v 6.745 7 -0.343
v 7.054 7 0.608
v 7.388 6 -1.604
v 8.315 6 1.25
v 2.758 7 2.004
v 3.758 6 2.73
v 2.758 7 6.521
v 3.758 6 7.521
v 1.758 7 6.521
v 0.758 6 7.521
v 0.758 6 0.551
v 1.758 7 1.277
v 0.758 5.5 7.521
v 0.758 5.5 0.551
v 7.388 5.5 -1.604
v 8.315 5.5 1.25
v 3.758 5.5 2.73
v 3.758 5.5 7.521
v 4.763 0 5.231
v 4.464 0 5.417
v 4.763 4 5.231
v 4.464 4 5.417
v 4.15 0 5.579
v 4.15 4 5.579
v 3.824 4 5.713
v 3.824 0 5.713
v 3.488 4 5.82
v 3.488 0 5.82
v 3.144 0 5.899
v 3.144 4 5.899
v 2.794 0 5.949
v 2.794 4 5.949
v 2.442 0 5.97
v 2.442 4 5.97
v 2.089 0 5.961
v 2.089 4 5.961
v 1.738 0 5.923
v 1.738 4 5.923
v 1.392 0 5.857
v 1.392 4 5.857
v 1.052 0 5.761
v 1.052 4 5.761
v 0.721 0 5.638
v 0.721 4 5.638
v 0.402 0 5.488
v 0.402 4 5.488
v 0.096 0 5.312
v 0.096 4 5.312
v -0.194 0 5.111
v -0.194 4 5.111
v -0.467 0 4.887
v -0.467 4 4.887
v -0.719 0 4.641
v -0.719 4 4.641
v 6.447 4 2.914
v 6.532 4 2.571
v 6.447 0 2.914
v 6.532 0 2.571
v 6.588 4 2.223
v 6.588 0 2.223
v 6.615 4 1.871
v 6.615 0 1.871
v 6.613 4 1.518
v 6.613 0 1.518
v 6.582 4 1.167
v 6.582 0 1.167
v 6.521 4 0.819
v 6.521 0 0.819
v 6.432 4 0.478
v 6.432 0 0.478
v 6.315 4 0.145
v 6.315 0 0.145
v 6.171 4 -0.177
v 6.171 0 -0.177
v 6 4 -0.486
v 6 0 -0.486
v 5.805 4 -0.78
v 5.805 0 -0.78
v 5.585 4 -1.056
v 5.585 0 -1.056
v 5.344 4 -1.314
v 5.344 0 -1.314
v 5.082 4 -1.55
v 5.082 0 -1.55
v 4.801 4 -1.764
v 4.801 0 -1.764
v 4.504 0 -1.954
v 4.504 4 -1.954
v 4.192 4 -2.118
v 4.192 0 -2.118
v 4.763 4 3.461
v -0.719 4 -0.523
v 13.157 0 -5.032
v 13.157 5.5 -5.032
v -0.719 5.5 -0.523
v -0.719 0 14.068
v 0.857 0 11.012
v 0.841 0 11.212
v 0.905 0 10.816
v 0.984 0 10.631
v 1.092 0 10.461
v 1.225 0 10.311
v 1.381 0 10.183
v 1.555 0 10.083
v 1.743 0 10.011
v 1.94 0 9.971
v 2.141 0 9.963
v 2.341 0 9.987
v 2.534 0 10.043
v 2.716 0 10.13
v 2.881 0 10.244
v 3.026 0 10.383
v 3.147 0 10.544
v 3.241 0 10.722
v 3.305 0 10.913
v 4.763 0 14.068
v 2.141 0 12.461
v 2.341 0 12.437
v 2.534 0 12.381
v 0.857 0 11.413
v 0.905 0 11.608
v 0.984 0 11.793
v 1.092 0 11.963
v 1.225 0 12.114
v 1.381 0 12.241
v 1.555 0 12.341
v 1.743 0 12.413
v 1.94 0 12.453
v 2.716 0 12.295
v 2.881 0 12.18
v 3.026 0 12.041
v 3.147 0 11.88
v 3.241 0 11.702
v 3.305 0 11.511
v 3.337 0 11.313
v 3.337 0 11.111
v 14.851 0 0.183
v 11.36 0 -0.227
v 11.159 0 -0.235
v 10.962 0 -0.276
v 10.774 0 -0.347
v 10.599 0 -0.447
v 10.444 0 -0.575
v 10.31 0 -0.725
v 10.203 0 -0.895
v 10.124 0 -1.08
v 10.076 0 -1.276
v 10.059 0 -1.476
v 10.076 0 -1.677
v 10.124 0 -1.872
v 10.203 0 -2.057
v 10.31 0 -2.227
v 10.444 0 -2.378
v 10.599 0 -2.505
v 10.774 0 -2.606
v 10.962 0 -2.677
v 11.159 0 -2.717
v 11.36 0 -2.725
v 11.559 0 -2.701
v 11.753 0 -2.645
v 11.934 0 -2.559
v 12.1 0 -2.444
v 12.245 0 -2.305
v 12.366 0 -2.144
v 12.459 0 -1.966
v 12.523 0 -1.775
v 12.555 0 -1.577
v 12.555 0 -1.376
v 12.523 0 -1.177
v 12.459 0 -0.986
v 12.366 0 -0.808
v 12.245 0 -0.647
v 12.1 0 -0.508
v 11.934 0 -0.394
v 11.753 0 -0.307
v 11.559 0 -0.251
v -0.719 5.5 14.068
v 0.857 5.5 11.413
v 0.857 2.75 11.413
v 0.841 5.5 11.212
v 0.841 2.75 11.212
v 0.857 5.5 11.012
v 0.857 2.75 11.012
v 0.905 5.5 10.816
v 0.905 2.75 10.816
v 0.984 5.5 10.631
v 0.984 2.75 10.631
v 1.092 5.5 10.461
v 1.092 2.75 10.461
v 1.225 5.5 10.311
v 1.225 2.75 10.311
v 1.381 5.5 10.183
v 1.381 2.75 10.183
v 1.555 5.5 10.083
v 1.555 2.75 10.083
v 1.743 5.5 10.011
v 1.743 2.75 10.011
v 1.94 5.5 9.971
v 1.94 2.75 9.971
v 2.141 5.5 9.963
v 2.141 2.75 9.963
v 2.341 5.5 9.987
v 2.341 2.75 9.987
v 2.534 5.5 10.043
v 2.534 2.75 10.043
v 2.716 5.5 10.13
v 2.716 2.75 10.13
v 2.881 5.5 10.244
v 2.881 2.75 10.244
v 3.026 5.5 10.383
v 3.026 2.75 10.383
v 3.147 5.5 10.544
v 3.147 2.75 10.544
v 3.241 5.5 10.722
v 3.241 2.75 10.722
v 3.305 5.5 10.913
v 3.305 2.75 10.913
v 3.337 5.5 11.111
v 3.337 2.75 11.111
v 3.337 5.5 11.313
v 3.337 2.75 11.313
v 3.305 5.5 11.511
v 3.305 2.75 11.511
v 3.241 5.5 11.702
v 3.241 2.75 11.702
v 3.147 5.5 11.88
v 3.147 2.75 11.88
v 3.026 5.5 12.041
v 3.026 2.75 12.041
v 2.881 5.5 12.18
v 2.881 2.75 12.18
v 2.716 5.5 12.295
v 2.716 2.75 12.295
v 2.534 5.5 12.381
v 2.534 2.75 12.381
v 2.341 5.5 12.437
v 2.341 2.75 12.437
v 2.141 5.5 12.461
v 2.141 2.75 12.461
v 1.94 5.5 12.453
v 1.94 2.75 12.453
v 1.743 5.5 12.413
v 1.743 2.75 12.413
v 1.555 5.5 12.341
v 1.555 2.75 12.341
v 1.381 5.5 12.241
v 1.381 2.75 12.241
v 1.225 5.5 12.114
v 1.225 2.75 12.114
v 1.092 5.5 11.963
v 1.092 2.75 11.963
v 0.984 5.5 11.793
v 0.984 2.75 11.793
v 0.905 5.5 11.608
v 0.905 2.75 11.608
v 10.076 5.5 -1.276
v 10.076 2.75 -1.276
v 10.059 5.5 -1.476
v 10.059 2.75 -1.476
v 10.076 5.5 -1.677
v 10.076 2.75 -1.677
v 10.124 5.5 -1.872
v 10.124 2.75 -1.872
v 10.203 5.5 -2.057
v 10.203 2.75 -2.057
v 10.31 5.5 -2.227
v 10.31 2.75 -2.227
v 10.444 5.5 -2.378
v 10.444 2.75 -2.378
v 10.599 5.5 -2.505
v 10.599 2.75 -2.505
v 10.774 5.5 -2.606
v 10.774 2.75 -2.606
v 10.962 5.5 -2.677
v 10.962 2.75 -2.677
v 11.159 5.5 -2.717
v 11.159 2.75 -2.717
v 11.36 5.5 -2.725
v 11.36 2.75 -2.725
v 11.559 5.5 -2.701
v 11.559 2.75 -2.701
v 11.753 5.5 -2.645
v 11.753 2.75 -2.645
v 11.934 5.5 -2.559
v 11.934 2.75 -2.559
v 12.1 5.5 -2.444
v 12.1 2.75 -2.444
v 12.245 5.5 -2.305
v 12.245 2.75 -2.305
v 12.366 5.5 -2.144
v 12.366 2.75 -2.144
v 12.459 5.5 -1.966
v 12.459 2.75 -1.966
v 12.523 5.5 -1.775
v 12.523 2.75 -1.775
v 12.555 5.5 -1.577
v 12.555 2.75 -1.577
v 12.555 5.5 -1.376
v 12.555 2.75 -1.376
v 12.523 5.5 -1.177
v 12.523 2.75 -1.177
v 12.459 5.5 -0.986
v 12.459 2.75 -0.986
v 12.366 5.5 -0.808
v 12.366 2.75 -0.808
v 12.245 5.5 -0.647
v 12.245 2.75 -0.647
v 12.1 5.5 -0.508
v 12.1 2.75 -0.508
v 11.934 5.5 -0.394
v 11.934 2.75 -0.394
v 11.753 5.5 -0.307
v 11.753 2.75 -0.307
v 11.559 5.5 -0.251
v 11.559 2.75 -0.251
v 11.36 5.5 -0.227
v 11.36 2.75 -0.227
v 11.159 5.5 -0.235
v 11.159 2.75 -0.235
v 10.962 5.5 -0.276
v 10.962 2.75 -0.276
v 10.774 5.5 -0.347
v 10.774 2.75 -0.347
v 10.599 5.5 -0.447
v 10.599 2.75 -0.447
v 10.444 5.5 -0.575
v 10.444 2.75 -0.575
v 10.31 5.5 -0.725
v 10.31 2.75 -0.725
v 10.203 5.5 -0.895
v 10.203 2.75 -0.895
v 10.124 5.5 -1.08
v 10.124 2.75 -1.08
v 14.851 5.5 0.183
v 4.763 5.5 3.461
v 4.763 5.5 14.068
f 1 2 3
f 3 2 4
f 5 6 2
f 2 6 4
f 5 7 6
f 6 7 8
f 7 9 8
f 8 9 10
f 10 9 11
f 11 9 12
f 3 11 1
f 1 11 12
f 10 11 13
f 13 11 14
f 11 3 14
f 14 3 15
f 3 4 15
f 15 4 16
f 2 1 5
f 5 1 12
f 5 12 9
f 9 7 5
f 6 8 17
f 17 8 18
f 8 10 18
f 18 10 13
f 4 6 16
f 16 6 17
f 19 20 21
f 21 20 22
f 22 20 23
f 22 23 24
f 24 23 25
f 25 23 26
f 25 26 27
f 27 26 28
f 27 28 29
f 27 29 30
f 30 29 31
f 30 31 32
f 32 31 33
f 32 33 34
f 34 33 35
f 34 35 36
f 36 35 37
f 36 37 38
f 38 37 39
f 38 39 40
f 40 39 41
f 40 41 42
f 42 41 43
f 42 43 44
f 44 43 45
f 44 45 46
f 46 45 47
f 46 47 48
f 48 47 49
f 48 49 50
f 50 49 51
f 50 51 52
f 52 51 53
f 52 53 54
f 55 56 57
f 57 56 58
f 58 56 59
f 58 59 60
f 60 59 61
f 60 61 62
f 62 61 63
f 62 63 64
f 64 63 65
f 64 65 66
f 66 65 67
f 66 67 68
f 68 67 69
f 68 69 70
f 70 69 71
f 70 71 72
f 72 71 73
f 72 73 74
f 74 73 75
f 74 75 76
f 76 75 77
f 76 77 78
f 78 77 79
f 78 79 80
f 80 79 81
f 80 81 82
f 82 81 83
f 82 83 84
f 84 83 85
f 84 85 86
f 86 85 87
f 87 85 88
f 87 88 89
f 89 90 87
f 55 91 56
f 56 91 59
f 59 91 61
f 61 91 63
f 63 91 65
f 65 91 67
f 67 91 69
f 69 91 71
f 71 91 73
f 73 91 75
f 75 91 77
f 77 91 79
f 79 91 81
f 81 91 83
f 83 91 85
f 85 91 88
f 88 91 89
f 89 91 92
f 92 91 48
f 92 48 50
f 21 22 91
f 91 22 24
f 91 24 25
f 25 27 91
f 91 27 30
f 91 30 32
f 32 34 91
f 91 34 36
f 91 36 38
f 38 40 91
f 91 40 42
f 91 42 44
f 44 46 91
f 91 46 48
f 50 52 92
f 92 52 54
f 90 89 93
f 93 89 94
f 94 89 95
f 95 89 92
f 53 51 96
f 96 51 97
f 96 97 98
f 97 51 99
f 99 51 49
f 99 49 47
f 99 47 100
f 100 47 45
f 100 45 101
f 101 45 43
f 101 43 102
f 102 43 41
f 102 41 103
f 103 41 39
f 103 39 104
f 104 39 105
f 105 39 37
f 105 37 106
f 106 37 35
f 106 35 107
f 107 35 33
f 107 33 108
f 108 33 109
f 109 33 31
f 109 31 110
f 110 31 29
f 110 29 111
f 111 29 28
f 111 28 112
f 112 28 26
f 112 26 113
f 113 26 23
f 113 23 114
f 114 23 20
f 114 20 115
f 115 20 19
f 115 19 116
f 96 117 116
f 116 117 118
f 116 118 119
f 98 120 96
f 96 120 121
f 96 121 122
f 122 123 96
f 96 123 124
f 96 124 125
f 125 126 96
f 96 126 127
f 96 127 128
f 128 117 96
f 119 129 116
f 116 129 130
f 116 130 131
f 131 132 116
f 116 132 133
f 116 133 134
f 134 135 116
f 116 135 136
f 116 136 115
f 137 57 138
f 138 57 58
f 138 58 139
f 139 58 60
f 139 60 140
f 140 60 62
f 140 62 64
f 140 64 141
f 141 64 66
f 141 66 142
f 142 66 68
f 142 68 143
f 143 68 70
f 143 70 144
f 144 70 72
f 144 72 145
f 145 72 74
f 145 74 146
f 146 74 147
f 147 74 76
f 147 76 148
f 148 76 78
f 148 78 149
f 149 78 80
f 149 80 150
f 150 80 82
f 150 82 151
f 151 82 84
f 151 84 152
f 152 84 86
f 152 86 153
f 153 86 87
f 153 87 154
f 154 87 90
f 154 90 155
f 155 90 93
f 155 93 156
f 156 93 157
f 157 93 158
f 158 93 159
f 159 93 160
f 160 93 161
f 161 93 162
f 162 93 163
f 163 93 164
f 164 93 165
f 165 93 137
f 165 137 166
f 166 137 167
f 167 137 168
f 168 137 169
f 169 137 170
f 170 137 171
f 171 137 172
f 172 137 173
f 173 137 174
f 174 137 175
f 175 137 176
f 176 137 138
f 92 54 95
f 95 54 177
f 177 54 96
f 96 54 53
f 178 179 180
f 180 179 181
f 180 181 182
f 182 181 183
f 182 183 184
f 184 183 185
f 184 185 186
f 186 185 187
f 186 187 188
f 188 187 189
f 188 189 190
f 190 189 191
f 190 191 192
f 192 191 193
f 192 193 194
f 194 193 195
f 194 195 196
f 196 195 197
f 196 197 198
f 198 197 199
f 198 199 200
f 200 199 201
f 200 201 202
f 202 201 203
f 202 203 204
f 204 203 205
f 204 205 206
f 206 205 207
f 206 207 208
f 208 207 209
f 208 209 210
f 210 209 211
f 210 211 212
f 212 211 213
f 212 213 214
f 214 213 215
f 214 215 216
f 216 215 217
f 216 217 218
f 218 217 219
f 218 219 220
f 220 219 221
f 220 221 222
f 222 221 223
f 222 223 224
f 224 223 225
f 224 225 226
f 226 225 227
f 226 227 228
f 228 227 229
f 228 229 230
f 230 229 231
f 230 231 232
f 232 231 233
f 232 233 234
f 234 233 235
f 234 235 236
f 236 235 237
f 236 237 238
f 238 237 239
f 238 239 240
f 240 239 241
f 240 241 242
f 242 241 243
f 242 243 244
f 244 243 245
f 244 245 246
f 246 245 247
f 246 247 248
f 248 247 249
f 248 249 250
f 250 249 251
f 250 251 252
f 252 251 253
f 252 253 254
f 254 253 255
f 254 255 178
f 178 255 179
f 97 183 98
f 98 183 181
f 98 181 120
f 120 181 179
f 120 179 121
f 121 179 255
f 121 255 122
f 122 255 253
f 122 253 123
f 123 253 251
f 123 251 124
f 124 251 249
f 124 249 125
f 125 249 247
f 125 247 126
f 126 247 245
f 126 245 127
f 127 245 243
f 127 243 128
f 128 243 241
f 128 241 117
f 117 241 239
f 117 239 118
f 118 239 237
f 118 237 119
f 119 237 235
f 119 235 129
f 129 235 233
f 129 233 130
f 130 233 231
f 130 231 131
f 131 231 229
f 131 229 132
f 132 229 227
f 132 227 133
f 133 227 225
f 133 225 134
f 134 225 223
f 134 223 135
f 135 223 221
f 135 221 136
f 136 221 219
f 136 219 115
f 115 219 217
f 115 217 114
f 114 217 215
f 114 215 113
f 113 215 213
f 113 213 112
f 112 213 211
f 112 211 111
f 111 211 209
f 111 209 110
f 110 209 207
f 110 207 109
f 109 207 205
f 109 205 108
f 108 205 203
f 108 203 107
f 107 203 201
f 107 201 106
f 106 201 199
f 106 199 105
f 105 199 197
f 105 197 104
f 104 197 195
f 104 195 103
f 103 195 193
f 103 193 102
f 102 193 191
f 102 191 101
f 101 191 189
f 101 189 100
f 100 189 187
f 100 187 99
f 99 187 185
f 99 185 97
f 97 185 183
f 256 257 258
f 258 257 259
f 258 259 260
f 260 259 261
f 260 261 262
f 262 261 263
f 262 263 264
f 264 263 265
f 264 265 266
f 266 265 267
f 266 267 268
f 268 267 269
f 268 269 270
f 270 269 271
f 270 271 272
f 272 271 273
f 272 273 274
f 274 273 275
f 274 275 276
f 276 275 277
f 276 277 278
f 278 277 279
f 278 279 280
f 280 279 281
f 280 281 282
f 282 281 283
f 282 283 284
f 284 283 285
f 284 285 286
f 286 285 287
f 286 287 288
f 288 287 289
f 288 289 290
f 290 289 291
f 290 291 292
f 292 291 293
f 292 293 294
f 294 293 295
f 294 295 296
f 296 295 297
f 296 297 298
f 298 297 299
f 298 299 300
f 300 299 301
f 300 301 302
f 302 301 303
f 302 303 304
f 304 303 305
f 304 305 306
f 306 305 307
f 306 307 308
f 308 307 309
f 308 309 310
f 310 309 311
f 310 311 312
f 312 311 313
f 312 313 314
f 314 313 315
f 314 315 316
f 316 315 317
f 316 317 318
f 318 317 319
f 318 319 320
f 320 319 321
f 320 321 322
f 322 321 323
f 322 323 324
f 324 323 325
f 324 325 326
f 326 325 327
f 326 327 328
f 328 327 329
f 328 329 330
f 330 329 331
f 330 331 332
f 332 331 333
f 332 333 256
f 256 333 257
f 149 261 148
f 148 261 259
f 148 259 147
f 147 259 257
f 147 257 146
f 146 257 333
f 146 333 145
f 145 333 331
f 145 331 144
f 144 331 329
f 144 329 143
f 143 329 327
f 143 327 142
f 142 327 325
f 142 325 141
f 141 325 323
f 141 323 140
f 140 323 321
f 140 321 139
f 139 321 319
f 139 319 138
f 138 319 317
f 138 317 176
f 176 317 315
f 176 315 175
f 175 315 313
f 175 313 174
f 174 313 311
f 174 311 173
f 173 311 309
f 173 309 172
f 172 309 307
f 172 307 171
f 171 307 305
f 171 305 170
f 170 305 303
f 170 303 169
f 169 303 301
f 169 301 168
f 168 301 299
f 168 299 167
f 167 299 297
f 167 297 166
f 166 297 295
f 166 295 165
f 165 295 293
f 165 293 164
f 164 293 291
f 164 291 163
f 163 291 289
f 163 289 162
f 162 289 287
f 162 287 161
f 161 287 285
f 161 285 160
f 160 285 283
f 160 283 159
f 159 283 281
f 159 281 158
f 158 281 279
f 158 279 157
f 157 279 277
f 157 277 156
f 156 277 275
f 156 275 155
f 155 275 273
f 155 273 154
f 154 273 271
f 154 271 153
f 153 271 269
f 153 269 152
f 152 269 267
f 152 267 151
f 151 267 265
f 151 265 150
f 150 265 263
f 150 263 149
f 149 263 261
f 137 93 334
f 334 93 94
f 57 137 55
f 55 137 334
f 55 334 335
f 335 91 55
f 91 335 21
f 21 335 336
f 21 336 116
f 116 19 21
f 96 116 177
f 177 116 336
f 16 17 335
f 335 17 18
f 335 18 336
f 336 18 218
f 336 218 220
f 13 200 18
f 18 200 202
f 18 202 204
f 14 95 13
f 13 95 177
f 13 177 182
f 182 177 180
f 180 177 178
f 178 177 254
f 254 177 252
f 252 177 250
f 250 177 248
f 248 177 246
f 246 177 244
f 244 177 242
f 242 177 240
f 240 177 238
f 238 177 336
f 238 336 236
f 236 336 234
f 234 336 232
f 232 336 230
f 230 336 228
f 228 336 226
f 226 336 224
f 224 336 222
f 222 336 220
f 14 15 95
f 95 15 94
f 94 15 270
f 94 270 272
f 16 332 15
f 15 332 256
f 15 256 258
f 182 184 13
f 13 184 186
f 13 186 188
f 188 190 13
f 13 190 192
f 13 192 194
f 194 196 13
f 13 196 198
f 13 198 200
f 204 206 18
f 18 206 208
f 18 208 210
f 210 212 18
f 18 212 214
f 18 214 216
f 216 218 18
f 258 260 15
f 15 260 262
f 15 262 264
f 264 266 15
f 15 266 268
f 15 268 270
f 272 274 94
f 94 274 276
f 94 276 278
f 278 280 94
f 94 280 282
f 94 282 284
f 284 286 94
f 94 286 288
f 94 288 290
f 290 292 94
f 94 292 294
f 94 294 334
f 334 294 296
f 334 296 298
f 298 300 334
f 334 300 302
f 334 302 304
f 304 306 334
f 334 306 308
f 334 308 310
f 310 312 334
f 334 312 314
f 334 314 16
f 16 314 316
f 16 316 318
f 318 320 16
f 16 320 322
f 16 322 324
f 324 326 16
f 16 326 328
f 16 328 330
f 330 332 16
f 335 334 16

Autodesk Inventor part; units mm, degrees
ref_plane "YZ Plane" through (0, 0, 0) normal (1, 0, 0) x (0, 1, 0)
ref_plane "XZ Plane" through (0, 0, 0) normal (0, 1, 0) x (-1, 0, 0)
ref_plane "XY Plane" through (0, 0, 0) normal (0, 0, 1) x (1, 0, 0)
sketch "草图1" plane through (0, 0, 0) normal (0, 1, 0) x (-1, 0, 0)
  circle A0 centre (-11.3094, -1.4762) radius 1.25
  circle A1 centre (-2.0908, 11.2121) radius 1.25
  line L0 (-5.7974, 4.2121) -> (1.6092, -1.1691) construction
  line L1 (0.7195, 14.068) -> (0.7195, -0.5227)
  line L2 (-4.7634, 3.4608) -> (-4.7634, 14.068)
  line L3 (-4.7634, 14.068) -> (0.7195, 14.068)
  line L4 (-4.7634, 3.4608) -> (-14.8514, 0.183)
  line L5 (-14.8514, 0.183) -> (-13.1571, -5.0315)
  line L6 (-13.1571, -5.0315) -> (0.7195, -0.5227)
  point P0 (0, 0)
  dimension "d0" = 2.5
extrude "拉伸1" add sketch "草图1" along normal blind 5.5
sketch "草图3" plane through (0, 0, 0) normal (0, -1, 0) x (1, 0, 0)
  line L0 (-0.7195, -0.5227) -> (-0.7195, 14.068) construction
  line L1 (4.7634, 14.068) -> (4.7634, 3.4608) construction
  line L2 (-0.7195, -0.5227) -> (4.7634, 3.4608) construction
  circle A0 centre (2.0908, 11.2121) radius 1.25 construction
  circle A1 centre (11.3094, -1.4762) radius 1.25 construction
  line L3 (-0.7195, -0.5227) -> (-0.7195, 14.068) construction
  line L4 (13.1571, -5.0315) -> (-0.7195, -0.5227) construction
  line L5 (14.8514, 0.183) -> (13.1571, -5.0315) construction
  line L6 (4.7634, 3.4608) -> (14.8514, 0.183) construction
  line L7 (4.7634, 14.068) -> (4.7634, 3.4608) construction
  line L8 (-0.7195, 14.068) -> (4.7634, 14.068) construction
  circle A2 centre (2.3678, 1.7203) radius 4.25
  point P0 (0, 0)
  dimension "d7" = 8.5
extrude "拉伸2" cut sketch "草图3" against normal blind 4
sketch "草图5" plane through (0, 5.5, 0) normal (0, 1, 0) x (1, 0, 0)
  line L0 (-0.7195, 0.5227) -> (4.7634, -3.4608)
  line L1 (0.7578, -0.5506) -> (0.7578, -7.5215)
  line L2 (0.7578, -7.5215) -> (3.7578, -7.5215)
  line L3 (3.7578, -7.5215) -> (3.7578, -2.7302)
  line L4 (0.7578, -0.5506) -> (7.3875, 1.6036)
  line L5 (7.3875, 1.6036) -> (8.3146, -1.2496)
  line L6 (8.3146, -1.2496) -> (3.7578, -2.7302)
  circle A0 centre (2.0908, -11.2121) radius 1.25 construction
  point P0 (0, 0)
  dimension "d15" = 7.3812
extrude "拉伸3" add sketch "草图5" along normal blind 1.5
chamfer "倒角1" distance 1 angle 45 6 edges at (2.2578, 7, 7.5215) (3.7578, 7, 5.1258) (6.0362, 7, 1.9899) (7.851, 7, -0.177) (4.0727, 7, -0.5265) (0.7578, 7, 4.036)
sketch "草图6" plane through (0, 5.5, 0) normal (0, 1, 0) x (1, 0, 0)
  point P0 (0, 0)
properties part number "鸦片下"
